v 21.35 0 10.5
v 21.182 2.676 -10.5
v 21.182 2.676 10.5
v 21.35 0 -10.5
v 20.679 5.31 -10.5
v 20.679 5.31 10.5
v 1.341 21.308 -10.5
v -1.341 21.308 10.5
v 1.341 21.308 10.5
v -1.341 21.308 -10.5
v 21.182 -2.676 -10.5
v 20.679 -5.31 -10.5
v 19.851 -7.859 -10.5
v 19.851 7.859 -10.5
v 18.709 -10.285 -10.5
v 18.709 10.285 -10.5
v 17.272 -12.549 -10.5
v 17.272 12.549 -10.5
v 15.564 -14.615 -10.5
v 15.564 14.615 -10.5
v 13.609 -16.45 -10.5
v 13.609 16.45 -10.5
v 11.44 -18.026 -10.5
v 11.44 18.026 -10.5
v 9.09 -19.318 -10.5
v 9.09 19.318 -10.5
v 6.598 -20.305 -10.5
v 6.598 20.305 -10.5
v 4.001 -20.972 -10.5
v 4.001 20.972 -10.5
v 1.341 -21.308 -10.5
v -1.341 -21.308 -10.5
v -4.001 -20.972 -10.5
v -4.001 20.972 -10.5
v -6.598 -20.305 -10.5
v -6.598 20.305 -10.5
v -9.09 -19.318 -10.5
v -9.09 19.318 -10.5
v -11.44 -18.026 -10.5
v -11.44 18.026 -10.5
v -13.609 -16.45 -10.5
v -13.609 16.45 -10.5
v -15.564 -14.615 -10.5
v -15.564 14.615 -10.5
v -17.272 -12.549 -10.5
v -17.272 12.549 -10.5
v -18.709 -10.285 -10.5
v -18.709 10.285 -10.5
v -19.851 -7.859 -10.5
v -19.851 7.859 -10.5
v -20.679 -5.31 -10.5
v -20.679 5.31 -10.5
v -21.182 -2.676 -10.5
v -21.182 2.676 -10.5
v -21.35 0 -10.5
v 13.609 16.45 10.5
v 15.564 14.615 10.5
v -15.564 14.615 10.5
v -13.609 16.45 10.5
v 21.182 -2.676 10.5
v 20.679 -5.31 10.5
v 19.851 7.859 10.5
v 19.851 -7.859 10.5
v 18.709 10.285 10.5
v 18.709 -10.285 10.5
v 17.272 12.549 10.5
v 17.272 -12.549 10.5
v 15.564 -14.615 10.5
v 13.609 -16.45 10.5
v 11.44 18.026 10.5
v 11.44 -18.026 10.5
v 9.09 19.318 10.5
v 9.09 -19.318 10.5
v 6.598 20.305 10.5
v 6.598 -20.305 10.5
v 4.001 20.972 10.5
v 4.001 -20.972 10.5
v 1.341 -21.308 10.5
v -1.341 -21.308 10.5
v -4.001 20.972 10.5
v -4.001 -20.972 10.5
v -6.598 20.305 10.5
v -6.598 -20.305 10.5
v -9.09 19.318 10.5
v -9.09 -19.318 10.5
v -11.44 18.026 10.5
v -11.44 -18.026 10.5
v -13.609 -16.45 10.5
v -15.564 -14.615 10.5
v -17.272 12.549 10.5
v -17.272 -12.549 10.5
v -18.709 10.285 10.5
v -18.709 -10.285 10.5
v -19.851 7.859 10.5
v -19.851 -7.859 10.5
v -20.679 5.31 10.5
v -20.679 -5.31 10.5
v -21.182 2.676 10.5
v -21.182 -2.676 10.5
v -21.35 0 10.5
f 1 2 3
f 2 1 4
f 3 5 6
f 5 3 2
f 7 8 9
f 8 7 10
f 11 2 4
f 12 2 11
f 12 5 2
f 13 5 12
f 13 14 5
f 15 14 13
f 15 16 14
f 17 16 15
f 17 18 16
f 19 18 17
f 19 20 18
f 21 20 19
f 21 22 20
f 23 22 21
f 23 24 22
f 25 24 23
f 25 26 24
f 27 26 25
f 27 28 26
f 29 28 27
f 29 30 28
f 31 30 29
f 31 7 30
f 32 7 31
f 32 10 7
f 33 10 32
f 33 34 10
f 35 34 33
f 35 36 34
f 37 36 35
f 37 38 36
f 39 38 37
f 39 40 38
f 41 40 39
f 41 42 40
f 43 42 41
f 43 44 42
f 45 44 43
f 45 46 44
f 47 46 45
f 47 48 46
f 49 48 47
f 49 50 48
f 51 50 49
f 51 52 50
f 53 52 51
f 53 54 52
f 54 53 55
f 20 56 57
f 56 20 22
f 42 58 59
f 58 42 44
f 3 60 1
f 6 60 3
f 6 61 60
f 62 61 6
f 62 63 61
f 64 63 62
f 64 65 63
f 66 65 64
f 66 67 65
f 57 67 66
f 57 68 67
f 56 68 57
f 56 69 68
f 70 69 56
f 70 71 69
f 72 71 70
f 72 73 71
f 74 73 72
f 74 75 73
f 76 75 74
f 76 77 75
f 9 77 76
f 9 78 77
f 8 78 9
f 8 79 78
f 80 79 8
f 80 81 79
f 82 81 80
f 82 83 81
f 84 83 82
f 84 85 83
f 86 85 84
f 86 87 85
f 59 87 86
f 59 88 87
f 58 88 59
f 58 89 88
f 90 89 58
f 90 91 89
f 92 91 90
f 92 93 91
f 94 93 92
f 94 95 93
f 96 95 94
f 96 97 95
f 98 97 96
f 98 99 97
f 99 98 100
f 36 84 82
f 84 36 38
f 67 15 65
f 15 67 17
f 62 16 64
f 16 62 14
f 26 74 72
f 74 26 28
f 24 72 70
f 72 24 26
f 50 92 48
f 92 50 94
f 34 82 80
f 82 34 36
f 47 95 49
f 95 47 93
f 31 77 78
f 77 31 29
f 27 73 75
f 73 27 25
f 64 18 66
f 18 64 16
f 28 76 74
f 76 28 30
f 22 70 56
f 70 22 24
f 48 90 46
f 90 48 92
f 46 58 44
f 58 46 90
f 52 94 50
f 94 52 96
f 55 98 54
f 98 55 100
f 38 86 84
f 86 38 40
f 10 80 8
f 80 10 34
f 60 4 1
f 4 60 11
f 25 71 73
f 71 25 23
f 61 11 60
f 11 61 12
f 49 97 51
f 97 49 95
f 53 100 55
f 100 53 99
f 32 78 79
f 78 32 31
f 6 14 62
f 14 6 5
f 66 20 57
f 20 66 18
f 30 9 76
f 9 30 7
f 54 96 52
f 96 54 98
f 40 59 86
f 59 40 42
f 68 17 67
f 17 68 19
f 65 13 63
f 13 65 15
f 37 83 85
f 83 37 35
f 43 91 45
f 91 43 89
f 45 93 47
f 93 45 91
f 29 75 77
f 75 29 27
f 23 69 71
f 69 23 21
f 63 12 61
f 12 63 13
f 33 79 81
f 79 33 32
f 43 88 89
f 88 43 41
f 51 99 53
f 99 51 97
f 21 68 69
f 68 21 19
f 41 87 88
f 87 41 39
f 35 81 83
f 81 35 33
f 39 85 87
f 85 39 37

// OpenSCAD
$fn = 50;


difference() {
	union() {
		translate(v = [0, 0, -10.5000000000]) {
			cylinder(h = 21, r = 21.3500000000);
		}
	}
	union() {
		translate(v = [0, 0, -100.0000000000]) {
			cylinder(h = 200, r = 0);
		}
	}
}
